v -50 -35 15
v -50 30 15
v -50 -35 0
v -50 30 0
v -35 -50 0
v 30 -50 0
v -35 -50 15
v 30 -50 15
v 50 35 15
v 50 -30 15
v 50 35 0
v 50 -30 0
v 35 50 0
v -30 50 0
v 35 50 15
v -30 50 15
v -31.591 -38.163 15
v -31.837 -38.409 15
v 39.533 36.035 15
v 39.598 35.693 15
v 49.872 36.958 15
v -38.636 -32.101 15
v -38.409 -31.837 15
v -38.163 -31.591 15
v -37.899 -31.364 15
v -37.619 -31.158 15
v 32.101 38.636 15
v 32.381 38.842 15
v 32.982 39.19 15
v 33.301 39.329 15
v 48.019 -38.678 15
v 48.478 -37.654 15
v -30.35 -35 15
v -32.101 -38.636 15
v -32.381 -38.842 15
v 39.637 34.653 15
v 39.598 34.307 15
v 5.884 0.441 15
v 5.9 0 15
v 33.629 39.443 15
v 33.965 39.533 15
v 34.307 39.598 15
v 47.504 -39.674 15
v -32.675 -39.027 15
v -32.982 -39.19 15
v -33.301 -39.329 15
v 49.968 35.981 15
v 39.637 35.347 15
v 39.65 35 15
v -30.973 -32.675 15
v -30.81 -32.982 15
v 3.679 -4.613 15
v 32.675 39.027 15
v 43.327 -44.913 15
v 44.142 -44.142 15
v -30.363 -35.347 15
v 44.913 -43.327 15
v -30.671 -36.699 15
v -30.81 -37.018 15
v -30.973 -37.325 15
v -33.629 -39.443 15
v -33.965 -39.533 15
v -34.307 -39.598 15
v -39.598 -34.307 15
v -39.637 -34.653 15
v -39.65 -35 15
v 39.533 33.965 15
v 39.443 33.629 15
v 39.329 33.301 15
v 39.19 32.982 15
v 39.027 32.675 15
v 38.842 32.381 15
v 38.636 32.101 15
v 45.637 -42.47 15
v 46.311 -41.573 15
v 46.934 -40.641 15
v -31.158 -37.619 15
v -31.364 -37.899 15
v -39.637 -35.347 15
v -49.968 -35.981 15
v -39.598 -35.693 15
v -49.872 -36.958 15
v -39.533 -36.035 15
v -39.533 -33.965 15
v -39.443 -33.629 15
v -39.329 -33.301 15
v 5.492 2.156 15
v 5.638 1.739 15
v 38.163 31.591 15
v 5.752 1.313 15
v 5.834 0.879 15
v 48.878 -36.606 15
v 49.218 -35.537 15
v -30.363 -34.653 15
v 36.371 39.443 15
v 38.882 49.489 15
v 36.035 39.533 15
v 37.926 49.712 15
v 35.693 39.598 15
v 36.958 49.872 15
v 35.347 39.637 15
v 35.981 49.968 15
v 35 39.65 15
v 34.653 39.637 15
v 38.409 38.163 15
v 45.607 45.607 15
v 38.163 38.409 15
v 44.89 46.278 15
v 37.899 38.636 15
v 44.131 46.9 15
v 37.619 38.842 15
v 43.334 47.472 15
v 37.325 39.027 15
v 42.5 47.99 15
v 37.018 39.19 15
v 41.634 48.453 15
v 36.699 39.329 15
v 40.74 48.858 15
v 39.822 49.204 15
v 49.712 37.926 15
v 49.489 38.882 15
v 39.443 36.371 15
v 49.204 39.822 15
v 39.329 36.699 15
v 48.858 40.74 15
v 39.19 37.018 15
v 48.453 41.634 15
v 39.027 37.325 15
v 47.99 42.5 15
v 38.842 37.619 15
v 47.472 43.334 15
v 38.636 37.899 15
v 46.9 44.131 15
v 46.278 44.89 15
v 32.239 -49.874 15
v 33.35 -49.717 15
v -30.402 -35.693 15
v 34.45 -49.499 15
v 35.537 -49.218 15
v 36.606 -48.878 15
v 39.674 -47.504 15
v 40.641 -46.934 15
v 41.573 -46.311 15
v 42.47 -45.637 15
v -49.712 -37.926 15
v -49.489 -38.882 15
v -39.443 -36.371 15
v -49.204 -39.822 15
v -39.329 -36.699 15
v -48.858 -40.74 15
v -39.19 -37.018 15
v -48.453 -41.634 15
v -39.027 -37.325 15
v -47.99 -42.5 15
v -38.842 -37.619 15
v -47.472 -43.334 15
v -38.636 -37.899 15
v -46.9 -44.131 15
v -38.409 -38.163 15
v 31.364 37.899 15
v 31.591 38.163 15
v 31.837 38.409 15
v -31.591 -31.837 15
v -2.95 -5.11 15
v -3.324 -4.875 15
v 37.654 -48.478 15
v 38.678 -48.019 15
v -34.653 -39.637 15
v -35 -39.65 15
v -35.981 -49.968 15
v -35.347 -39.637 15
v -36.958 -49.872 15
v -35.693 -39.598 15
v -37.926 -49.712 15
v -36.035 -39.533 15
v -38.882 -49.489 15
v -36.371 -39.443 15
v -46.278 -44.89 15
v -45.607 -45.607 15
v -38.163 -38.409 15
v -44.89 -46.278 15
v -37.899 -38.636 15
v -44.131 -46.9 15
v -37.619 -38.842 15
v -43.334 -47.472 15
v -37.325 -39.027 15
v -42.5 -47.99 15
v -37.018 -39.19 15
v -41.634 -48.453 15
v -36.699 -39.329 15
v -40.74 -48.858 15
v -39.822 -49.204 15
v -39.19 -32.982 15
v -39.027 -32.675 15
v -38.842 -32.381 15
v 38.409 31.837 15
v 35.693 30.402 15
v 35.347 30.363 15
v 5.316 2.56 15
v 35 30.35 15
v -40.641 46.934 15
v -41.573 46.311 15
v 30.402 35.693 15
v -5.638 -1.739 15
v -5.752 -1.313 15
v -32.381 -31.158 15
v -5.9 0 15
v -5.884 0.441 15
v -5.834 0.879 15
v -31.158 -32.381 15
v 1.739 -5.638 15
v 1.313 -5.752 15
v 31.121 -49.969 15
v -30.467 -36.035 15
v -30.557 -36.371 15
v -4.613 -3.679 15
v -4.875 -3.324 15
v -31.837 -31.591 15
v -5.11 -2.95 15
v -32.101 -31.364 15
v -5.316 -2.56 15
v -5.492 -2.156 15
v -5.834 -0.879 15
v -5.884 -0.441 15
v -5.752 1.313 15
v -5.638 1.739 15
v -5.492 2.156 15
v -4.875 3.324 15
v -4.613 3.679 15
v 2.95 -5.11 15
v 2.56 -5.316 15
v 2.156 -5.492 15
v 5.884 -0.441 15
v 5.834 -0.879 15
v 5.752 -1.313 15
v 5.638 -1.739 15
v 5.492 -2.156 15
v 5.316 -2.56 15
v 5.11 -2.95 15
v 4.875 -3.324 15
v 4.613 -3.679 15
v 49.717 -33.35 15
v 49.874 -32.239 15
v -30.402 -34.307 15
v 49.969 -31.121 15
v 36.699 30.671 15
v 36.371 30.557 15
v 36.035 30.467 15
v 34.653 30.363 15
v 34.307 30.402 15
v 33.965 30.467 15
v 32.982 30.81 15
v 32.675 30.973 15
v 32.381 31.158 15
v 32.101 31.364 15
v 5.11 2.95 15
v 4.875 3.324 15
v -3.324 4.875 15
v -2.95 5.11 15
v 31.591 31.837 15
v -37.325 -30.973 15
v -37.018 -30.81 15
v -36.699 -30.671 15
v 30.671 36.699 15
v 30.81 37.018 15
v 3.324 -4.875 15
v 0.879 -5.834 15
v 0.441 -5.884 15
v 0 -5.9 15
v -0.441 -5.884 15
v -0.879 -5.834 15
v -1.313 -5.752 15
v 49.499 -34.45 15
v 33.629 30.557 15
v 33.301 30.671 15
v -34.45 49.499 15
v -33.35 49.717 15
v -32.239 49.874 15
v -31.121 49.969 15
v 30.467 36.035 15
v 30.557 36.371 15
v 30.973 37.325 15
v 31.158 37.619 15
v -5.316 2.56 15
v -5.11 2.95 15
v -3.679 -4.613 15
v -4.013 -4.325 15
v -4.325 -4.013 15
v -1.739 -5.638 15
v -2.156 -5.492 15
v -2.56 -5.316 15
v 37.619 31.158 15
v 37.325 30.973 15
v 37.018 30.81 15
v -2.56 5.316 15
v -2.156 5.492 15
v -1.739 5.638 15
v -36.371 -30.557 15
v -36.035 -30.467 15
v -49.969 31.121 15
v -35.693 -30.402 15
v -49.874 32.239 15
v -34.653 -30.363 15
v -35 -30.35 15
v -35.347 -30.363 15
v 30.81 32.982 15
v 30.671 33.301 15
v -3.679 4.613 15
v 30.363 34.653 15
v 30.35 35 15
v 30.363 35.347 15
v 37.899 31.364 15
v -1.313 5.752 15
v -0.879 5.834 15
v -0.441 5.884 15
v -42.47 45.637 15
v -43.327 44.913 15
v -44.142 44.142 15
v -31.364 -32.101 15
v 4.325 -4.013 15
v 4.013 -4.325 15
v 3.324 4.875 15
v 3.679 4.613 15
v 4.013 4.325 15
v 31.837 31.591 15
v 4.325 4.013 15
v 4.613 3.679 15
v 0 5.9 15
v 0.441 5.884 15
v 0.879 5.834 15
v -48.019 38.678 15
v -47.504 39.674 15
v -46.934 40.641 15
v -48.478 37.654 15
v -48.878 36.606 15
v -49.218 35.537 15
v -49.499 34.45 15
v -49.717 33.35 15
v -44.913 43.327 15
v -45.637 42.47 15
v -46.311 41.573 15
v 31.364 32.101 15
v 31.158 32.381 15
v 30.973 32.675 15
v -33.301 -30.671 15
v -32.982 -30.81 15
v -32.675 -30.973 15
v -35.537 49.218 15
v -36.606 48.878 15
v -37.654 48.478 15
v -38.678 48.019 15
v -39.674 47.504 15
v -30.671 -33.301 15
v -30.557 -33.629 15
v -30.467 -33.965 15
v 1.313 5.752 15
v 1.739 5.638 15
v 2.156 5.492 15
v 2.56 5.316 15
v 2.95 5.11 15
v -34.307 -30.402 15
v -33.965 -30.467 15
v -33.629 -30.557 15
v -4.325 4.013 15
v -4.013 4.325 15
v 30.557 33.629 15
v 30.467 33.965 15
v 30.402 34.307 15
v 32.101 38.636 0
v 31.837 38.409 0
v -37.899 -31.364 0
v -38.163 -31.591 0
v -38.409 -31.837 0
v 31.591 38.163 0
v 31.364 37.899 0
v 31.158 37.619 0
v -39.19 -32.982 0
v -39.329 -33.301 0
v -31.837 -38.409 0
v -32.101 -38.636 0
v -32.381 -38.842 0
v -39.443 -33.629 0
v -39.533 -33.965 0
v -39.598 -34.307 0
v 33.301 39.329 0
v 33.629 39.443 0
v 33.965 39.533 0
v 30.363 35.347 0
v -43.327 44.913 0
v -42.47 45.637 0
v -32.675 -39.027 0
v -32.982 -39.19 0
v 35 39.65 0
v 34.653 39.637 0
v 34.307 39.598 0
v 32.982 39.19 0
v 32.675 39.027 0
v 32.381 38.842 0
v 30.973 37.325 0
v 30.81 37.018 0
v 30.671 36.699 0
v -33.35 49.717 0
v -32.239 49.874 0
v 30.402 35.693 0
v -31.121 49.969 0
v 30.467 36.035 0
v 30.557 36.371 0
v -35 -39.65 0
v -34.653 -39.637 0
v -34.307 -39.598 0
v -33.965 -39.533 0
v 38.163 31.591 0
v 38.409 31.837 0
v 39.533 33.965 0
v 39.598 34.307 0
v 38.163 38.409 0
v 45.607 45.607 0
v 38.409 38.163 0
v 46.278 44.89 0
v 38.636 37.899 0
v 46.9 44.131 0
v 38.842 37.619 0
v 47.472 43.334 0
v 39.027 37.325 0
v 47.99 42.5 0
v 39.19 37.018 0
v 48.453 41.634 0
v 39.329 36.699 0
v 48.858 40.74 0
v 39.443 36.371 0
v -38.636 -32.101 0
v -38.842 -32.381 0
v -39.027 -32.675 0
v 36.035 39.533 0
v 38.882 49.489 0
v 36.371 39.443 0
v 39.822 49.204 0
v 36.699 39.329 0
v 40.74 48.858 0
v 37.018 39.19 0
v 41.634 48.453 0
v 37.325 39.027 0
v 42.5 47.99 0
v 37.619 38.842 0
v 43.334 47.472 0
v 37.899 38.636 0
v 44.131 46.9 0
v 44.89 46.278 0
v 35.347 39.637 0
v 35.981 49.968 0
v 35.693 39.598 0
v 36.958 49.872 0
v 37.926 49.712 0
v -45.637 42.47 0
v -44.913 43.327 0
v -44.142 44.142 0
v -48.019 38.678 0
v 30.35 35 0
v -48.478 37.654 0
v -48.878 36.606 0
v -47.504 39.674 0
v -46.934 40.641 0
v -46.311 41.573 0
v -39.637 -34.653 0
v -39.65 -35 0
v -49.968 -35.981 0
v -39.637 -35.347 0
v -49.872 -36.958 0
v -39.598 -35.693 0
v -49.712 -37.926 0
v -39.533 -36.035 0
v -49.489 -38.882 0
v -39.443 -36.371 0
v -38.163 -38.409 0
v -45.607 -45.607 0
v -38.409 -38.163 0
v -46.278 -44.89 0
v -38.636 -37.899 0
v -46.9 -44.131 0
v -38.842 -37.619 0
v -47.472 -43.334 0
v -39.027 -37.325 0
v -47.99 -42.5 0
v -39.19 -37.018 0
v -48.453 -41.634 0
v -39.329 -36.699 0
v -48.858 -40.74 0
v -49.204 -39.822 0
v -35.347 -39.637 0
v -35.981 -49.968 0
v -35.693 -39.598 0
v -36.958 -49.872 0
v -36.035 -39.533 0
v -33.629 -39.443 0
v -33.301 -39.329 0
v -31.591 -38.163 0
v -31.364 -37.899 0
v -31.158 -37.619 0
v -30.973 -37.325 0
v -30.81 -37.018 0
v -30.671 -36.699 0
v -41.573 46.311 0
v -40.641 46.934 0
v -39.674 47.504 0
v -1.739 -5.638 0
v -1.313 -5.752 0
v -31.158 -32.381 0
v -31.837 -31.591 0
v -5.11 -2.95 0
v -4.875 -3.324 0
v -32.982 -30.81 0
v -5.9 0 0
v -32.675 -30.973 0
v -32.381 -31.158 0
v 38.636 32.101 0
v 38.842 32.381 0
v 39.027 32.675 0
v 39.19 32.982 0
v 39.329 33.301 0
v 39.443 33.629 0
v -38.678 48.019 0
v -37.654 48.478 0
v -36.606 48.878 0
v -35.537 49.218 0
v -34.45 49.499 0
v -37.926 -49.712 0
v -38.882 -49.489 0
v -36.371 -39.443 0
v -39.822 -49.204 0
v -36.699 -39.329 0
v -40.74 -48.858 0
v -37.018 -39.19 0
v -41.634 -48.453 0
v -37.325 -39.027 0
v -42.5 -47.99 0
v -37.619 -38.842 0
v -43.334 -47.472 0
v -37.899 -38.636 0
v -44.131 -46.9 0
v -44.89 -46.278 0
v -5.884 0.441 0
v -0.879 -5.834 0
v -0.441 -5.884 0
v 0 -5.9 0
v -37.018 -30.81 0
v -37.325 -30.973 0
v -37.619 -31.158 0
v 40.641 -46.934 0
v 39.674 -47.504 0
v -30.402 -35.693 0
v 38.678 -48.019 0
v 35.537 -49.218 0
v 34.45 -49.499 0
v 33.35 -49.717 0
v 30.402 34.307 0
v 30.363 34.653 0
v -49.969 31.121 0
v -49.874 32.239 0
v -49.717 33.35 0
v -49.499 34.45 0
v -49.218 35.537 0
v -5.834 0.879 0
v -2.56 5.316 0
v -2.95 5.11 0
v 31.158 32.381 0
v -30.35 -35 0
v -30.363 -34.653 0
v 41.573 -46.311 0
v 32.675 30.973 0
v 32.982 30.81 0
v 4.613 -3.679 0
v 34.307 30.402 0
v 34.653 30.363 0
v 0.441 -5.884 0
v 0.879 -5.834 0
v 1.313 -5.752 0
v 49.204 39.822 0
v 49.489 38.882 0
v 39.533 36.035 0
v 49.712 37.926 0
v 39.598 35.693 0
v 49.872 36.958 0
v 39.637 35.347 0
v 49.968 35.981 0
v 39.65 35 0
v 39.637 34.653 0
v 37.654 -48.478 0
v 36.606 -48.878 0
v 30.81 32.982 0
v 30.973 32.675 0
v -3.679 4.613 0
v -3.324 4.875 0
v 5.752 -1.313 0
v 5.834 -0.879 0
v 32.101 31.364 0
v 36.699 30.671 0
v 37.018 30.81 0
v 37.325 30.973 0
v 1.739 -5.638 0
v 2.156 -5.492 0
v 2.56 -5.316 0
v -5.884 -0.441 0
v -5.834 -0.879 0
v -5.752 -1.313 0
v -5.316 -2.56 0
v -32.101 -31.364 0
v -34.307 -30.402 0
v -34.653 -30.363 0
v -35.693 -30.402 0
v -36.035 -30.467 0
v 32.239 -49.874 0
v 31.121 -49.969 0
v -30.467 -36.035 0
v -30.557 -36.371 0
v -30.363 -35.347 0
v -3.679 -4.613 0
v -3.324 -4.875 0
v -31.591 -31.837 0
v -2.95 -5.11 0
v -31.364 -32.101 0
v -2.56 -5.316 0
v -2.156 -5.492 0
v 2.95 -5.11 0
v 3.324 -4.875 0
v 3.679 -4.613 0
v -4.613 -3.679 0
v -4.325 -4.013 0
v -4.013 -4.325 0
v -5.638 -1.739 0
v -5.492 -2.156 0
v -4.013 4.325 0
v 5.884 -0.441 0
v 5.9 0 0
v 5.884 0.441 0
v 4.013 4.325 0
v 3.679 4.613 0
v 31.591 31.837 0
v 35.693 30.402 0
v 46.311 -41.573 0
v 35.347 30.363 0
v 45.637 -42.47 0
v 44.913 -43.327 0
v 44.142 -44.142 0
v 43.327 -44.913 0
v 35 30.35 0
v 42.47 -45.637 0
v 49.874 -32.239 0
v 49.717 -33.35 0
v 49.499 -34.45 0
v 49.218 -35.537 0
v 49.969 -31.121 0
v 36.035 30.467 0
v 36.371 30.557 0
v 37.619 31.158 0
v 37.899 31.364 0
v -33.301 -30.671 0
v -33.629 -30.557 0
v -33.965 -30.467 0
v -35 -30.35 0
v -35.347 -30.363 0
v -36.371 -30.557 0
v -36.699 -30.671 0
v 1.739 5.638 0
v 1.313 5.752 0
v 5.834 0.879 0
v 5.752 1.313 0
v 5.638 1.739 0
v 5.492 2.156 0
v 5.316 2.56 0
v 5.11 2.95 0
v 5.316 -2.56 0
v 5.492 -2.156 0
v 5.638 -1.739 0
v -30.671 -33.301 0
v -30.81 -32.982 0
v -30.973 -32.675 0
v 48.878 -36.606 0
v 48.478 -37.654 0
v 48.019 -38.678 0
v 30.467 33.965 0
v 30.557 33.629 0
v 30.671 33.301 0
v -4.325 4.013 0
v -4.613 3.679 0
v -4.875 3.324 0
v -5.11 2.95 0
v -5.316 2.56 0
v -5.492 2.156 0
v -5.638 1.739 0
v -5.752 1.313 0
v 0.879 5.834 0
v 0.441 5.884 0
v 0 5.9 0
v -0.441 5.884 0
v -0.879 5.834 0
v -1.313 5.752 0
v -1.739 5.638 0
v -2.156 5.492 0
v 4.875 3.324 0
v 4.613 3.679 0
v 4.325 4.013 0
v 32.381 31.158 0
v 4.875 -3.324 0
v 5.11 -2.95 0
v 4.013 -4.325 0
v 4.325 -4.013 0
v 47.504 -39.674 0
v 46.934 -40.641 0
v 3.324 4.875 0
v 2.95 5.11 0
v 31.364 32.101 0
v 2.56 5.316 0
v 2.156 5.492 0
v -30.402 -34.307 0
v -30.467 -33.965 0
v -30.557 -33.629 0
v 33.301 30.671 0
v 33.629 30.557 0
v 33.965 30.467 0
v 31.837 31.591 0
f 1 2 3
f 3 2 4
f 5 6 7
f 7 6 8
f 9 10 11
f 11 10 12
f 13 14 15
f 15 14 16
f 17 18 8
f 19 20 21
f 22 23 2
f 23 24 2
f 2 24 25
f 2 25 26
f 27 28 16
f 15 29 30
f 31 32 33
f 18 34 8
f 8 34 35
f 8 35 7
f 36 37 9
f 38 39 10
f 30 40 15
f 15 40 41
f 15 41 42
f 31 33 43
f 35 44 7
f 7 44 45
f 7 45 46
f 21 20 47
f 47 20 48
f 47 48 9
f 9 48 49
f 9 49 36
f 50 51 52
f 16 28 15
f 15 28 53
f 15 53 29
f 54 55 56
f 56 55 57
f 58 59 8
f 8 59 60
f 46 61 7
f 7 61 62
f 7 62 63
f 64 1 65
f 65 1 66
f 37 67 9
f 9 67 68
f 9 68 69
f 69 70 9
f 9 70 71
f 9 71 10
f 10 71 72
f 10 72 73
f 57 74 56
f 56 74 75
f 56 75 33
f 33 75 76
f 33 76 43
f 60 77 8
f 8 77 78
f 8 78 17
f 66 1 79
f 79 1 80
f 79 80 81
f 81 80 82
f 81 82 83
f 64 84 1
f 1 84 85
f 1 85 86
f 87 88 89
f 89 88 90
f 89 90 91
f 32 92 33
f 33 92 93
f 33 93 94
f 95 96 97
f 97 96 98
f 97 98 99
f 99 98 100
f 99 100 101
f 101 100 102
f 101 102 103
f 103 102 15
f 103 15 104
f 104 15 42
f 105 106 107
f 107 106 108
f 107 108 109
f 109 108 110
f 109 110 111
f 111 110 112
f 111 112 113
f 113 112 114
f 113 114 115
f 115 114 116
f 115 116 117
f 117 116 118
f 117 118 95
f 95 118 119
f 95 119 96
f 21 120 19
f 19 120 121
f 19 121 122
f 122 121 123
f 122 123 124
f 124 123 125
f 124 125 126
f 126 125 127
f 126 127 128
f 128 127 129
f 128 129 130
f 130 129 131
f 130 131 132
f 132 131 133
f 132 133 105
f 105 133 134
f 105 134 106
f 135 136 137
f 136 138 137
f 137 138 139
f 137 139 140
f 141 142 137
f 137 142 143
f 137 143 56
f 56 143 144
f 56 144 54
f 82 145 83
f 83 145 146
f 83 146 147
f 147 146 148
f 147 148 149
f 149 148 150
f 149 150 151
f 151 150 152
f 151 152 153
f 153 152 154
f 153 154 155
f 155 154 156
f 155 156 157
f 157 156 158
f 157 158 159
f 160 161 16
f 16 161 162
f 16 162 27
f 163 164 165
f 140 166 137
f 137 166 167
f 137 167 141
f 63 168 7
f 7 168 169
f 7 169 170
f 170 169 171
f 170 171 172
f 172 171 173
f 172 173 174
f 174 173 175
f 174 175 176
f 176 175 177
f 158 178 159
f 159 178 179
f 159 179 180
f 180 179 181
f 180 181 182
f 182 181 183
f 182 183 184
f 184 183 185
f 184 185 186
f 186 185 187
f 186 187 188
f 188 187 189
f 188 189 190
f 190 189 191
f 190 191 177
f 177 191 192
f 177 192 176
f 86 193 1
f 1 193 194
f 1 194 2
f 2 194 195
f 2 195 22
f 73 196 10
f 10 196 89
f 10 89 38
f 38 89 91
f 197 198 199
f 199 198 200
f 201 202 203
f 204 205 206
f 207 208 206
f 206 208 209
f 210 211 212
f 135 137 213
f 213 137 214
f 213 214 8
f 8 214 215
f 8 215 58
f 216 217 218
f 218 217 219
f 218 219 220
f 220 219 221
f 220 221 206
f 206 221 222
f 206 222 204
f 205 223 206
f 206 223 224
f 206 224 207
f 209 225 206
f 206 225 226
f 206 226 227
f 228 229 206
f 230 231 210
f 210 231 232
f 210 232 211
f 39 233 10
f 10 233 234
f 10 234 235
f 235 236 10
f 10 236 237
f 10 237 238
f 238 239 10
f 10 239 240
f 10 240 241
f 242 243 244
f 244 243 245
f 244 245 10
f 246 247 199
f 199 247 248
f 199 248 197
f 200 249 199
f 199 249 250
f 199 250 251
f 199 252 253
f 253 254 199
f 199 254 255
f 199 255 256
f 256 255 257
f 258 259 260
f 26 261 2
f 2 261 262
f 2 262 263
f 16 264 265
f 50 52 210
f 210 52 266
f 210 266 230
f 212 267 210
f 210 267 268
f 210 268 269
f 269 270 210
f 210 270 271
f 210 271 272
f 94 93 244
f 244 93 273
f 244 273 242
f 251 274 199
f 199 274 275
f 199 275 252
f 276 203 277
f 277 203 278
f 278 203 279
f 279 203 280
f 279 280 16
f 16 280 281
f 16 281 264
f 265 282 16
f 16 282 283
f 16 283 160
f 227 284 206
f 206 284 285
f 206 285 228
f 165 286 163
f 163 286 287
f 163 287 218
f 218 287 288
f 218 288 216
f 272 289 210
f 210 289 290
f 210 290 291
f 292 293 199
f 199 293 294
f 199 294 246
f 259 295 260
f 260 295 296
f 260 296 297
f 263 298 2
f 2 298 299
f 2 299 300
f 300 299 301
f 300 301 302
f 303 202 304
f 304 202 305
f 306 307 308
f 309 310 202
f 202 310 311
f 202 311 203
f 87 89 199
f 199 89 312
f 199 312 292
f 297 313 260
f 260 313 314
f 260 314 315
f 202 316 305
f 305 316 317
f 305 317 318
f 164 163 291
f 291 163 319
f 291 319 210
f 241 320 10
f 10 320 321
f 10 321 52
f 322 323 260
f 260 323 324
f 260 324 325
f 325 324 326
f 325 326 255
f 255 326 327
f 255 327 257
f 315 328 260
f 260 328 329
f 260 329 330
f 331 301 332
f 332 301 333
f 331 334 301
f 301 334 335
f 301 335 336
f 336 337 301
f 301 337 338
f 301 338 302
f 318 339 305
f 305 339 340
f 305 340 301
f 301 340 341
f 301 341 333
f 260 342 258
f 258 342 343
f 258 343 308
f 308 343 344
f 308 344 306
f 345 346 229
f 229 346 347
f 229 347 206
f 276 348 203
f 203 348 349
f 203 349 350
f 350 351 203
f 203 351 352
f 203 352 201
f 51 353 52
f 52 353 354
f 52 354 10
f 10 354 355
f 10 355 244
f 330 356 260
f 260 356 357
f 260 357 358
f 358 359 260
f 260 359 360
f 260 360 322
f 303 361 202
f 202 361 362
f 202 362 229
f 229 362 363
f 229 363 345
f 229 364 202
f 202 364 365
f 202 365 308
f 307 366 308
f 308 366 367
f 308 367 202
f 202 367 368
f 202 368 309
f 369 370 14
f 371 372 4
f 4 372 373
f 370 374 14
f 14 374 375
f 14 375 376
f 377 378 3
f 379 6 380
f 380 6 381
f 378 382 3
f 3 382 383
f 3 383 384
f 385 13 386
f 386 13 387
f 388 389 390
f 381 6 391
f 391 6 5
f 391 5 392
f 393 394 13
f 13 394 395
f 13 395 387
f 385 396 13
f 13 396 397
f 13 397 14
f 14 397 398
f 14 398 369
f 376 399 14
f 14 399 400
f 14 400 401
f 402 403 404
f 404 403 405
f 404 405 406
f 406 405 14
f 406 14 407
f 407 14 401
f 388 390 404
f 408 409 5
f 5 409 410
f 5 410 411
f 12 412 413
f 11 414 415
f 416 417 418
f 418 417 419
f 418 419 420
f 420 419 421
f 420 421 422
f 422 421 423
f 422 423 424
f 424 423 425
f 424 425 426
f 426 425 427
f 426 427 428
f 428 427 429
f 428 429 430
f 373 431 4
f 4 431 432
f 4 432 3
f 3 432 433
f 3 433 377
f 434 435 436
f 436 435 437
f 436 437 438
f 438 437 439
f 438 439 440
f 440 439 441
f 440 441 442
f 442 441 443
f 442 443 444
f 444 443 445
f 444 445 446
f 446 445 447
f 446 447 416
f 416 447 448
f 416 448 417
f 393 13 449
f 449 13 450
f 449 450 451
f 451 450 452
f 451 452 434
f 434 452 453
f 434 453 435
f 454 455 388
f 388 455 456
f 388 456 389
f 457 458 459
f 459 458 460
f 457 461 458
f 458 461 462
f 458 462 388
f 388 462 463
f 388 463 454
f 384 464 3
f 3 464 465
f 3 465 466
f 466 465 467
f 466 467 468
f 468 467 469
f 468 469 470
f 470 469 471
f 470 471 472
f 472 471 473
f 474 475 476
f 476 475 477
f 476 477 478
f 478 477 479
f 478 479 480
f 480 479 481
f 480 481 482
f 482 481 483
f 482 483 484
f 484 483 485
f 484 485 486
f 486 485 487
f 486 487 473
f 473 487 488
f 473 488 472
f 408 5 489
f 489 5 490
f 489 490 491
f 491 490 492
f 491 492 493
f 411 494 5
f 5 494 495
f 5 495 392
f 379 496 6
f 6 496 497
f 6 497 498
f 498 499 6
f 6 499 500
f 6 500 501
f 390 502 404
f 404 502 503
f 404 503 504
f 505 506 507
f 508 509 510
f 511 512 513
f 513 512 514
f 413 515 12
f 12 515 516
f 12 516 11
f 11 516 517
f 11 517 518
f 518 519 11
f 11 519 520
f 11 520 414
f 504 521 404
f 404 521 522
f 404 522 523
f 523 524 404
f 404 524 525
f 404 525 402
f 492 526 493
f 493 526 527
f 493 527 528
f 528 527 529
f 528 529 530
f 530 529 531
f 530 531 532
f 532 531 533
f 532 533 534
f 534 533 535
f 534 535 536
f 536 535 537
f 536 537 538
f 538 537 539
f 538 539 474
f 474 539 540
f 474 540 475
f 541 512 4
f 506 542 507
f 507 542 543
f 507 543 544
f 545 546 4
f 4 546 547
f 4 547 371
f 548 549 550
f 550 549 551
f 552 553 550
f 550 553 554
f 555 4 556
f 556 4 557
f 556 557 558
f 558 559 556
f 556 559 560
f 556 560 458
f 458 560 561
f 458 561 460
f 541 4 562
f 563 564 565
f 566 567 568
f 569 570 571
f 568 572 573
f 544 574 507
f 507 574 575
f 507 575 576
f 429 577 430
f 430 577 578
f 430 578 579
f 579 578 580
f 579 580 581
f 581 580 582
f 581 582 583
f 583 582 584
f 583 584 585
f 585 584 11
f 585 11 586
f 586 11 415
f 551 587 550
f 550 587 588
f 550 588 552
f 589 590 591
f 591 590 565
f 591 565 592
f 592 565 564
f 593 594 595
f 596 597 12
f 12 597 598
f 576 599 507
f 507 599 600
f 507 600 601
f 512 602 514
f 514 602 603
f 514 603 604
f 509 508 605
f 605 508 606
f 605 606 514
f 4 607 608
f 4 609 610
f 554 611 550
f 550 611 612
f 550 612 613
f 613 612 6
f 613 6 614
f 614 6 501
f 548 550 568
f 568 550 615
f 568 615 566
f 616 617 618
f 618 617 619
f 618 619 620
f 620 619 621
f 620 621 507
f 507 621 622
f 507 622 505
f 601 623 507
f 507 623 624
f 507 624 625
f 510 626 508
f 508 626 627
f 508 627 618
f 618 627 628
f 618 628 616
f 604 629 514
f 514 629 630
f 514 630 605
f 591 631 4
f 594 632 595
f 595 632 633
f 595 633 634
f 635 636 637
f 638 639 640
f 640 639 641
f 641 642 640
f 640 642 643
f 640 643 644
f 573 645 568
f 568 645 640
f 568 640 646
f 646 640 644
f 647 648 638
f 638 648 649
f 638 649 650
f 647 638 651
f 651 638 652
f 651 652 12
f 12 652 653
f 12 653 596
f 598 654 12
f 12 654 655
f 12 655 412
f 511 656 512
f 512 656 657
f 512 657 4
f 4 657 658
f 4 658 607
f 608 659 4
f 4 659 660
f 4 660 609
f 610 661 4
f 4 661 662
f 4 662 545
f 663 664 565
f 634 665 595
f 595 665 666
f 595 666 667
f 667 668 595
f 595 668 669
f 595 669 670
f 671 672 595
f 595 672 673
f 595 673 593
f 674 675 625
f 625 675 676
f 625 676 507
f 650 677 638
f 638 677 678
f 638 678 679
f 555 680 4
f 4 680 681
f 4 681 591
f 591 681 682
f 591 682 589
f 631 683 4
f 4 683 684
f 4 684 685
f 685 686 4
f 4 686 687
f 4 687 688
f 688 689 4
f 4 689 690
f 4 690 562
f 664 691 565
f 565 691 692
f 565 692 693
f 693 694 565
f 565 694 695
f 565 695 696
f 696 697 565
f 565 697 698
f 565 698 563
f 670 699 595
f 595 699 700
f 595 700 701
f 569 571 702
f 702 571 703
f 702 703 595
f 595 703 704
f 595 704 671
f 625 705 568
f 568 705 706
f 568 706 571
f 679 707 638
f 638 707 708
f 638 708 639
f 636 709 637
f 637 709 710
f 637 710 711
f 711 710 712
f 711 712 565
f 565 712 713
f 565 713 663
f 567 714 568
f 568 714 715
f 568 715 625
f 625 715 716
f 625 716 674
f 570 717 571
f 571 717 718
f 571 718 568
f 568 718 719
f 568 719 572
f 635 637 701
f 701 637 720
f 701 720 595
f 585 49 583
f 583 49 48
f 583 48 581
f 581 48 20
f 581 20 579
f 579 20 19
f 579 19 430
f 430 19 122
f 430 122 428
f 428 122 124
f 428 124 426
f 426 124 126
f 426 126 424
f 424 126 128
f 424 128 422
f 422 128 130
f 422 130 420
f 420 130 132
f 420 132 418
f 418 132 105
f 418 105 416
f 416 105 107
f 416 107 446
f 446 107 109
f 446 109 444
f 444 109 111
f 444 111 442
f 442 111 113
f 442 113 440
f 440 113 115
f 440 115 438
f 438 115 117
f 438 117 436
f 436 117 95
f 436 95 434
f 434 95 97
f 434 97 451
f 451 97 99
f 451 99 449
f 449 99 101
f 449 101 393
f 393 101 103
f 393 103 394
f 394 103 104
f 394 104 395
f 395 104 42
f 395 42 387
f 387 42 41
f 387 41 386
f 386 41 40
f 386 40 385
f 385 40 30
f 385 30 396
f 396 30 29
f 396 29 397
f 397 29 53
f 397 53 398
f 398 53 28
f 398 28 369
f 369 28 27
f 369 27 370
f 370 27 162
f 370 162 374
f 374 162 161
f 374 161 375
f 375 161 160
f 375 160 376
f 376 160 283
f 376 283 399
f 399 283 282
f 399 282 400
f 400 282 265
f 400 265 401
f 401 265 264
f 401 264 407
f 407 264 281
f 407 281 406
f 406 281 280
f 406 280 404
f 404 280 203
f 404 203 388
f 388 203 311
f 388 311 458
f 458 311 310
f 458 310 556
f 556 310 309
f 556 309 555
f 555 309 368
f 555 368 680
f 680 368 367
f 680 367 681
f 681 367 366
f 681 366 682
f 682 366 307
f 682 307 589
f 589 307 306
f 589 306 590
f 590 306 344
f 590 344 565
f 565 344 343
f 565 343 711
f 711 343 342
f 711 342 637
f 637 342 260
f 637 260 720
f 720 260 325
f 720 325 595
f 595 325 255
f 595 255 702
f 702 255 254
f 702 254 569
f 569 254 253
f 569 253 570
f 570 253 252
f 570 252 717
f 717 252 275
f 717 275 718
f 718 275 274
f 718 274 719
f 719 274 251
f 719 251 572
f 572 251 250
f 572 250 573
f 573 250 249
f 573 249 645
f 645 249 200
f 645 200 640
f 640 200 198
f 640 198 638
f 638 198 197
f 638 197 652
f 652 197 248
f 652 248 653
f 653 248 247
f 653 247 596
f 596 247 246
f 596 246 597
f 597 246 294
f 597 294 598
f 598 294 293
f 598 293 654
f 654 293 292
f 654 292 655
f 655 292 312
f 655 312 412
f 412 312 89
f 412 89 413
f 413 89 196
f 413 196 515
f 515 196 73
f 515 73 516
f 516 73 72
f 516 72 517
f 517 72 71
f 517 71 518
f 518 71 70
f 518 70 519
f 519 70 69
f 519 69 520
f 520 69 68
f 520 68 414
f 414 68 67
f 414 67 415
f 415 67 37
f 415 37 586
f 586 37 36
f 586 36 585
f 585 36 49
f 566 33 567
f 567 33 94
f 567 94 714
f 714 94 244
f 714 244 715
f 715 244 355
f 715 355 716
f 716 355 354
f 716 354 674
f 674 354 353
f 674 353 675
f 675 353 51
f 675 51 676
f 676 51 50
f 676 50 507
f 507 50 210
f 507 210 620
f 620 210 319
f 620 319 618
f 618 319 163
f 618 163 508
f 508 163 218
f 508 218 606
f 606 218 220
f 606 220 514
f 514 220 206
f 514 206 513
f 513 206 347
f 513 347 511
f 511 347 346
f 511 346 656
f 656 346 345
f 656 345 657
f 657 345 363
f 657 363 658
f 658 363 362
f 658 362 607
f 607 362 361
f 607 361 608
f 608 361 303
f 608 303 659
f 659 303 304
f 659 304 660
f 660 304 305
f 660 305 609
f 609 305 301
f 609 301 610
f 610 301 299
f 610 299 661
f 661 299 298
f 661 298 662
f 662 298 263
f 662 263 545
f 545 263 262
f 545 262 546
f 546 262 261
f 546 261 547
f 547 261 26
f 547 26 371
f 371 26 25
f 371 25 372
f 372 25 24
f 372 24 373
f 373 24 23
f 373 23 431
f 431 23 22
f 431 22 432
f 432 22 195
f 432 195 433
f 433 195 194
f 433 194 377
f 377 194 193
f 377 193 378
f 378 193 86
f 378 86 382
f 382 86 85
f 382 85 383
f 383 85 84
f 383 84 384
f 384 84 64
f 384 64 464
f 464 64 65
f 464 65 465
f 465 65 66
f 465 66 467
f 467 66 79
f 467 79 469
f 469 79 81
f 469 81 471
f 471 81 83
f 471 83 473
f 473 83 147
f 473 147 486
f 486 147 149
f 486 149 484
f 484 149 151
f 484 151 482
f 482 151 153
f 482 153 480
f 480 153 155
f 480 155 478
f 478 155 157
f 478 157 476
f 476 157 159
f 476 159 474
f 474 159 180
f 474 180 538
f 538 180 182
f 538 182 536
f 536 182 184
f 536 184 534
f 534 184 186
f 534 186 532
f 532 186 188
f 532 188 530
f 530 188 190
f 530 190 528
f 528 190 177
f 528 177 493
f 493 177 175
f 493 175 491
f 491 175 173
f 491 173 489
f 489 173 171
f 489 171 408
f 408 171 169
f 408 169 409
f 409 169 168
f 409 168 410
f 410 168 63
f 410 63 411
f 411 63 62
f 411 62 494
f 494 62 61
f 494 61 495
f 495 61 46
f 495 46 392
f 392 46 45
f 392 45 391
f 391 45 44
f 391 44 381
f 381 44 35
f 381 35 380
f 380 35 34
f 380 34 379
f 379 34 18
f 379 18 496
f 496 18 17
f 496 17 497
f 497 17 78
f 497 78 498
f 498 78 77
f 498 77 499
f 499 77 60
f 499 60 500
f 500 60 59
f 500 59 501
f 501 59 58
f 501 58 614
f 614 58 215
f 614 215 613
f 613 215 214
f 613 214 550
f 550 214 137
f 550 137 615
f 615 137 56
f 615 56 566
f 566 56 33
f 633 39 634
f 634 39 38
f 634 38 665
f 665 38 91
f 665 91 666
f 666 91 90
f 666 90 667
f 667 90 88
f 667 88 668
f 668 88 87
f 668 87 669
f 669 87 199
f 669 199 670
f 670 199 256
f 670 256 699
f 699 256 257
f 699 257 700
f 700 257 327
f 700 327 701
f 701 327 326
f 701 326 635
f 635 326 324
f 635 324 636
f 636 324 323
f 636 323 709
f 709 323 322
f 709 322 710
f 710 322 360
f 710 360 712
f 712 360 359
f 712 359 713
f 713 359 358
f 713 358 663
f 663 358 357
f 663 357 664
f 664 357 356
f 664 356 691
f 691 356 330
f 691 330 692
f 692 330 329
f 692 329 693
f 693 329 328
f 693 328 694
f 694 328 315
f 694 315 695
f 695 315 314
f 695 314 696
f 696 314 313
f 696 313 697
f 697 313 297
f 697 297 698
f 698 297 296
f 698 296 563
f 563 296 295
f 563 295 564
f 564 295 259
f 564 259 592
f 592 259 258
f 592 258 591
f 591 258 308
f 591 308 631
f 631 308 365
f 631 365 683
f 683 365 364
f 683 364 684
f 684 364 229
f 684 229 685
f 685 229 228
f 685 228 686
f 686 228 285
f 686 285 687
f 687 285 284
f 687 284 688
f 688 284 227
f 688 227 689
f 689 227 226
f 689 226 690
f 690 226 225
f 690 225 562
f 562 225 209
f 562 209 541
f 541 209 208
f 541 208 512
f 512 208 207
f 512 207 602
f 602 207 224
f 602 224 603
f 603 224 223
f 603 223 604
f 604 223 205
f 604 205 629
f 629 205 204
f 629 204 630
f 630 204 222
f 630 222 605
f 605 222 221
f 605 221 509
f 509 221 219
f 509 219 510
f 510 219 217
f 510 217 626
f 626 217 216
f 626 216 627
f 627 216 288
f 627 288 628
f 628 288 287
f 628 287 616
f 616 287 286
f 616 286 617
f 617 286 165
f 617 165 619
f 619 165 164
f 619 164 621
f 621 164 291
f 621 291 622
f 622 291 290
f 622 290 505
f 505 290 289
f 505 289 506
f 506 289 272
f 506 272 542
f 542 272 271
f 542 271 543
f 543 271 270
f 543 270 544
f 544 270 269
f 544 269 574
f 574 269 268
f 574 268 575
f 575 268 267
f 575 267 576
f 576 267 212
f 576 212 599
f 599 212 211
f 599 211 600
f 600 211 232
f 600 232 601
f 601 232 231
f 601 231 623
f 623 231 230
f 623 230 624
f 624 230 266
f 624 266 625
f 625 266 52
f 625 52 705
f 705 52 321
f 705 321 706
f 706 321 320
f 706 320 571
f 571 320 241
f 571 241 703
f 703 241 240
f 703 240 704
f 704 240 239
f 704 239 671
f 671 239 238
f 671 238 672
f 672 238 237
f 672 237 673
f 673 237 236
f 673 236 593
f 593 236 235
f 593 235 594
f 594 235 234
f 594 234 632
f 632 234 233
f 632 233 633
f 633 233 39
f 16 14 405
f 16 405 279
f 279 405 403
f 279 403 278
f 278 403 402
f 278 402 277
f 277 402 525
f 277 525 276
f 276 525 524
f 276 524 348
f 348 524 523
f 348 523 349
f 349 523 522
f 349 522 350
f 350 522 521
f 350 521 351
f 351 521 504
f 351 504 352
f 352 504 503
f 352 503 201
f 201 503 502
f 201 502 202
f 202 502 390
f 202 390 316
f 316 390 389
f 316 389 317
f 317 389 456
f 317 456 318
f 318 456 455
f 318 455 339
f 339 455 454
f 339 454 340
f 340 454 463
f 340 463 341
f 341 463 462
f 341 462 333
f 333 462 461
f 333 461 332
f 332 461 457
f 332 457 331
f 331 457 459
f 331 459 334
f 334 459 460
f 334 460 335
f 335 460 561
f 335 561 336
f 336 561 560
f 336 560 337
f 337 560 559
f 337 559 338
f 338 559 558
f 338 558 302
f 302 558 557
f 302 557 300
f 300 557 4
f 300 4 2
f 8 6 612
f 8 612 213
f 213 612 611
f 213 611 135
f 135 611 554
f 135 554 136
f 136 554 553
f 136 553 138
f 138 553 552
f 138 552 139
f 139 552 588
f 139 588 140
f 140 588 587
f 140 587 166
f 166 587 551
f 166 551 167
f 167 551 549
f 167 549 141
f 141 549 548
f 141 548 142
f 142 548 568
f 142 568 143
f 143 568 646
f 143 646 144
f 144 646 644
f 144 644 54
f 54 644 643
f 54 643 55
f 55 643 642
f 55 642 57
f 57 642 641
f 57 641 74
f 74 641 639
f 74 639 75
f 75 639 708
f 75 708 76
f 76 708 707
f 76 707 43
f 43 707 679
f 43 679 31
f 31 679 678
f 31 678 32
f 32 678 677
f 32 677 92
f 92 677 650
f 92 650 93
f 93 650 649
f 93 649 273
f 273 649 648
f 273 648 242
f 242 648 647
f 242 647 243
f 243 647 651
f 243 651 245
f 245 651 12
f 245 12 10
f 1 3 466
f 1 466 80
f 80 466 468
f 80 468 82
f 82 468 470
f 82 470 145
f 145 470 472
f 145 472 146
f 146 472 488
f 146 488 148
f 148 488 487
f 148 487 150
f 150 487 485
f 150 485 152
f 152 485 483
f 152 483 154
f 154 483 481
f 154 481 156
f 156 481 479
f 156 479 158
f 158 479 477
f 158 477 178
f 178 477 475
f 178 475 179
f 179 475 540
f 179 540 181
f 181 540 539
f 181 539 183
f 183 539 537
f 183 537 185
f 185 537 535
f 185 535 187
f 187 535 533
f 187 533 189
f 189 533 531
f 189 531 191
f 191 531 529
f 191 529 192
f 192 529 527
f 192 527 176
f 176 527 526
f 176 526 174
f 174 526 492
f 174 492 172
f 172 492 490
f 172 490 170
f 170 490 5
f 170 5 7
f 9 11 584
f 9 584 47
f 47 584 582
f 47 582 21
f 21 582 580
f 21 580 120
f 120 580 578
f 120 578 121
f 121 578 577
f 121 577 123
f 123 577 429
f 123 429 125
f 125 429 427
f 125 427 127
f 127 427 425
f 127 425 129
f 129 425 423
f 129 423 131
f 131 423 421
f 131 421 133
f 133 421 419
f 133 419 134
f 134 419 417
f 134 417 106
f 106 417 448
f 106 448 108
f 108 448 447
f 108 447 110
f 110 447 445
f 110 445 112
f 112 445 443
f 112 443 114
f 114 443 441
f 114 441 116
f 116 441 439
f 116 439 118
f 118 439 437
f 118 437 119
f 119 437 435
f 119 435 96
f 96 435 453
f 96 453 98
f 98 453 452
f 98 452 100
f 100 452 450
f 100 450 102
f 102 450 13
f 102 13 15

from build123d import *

# Parameters (mm, degrees)
SKETCH1_W           = 100
SKETCH1_H           = 100
BOSS_EXTRUDE1_DEPTH = 15
SKETCH2_R           = 4.65
CUT_EXTRUDE1_DEPTH  = 73.284161474
SKETCH10_R          = 5.9
CUT_EXTRUDE5_DEPTH  = 73.284161474
FILLET1_R           = 20
FILLET2_R           = 15


with BuildPart() as part:
    # Sketch1 → Boss-Extrude1 (new body)
    with BuildSketch(Plane.XY):
        Rectangle(SKETCH1_W, SKETCH1_H)
    extrude(amount=BOSS_EXTRUDE1_DEPTH)

    # Sketch2 → Cut-Extrude1 (cut, through all)
    with BuildSketch(Plane.XY.offset(15)):
        with Locations((35, 35)):
            Circle(SKETCH2_R)
        with Locations(Location((-35, -35, 0), (0, 0, 180))):
            Circle(SKETCH2_R)
    extrude(amount=-CUT_EXTRUDE1_DEPTH, mode=Mode.SUBTRACT)

    # Sketch10 → Cut-Extrude5 (cut, through all)
    with BuildSketch(Plane.XY.offset(15)):
        Circle(SKETCH10_R)
    extrude(amount=-CUT_EXTRUDE5_DEPTH, mode=Mode.SUBTRACT)

    # Fillet1
    fillet1_edges = [part.edges().sort_by_distance(p)[0] for p in [
        (-50, 50, 7.5),
        (50, -50, 7.5),
    ]]
    fillet(fillet1_edges, radius=FILLET1_R)

    # Fillet2
    fillet2_edges = [part.edges().sort_by_distance(p)[0] for p in [
        (50, 50, 7.5),
        (-50, -50, 7.5),
    ]]
    fillet(fillet2_edges, radius=FILLET2_R)


solid = part.part
